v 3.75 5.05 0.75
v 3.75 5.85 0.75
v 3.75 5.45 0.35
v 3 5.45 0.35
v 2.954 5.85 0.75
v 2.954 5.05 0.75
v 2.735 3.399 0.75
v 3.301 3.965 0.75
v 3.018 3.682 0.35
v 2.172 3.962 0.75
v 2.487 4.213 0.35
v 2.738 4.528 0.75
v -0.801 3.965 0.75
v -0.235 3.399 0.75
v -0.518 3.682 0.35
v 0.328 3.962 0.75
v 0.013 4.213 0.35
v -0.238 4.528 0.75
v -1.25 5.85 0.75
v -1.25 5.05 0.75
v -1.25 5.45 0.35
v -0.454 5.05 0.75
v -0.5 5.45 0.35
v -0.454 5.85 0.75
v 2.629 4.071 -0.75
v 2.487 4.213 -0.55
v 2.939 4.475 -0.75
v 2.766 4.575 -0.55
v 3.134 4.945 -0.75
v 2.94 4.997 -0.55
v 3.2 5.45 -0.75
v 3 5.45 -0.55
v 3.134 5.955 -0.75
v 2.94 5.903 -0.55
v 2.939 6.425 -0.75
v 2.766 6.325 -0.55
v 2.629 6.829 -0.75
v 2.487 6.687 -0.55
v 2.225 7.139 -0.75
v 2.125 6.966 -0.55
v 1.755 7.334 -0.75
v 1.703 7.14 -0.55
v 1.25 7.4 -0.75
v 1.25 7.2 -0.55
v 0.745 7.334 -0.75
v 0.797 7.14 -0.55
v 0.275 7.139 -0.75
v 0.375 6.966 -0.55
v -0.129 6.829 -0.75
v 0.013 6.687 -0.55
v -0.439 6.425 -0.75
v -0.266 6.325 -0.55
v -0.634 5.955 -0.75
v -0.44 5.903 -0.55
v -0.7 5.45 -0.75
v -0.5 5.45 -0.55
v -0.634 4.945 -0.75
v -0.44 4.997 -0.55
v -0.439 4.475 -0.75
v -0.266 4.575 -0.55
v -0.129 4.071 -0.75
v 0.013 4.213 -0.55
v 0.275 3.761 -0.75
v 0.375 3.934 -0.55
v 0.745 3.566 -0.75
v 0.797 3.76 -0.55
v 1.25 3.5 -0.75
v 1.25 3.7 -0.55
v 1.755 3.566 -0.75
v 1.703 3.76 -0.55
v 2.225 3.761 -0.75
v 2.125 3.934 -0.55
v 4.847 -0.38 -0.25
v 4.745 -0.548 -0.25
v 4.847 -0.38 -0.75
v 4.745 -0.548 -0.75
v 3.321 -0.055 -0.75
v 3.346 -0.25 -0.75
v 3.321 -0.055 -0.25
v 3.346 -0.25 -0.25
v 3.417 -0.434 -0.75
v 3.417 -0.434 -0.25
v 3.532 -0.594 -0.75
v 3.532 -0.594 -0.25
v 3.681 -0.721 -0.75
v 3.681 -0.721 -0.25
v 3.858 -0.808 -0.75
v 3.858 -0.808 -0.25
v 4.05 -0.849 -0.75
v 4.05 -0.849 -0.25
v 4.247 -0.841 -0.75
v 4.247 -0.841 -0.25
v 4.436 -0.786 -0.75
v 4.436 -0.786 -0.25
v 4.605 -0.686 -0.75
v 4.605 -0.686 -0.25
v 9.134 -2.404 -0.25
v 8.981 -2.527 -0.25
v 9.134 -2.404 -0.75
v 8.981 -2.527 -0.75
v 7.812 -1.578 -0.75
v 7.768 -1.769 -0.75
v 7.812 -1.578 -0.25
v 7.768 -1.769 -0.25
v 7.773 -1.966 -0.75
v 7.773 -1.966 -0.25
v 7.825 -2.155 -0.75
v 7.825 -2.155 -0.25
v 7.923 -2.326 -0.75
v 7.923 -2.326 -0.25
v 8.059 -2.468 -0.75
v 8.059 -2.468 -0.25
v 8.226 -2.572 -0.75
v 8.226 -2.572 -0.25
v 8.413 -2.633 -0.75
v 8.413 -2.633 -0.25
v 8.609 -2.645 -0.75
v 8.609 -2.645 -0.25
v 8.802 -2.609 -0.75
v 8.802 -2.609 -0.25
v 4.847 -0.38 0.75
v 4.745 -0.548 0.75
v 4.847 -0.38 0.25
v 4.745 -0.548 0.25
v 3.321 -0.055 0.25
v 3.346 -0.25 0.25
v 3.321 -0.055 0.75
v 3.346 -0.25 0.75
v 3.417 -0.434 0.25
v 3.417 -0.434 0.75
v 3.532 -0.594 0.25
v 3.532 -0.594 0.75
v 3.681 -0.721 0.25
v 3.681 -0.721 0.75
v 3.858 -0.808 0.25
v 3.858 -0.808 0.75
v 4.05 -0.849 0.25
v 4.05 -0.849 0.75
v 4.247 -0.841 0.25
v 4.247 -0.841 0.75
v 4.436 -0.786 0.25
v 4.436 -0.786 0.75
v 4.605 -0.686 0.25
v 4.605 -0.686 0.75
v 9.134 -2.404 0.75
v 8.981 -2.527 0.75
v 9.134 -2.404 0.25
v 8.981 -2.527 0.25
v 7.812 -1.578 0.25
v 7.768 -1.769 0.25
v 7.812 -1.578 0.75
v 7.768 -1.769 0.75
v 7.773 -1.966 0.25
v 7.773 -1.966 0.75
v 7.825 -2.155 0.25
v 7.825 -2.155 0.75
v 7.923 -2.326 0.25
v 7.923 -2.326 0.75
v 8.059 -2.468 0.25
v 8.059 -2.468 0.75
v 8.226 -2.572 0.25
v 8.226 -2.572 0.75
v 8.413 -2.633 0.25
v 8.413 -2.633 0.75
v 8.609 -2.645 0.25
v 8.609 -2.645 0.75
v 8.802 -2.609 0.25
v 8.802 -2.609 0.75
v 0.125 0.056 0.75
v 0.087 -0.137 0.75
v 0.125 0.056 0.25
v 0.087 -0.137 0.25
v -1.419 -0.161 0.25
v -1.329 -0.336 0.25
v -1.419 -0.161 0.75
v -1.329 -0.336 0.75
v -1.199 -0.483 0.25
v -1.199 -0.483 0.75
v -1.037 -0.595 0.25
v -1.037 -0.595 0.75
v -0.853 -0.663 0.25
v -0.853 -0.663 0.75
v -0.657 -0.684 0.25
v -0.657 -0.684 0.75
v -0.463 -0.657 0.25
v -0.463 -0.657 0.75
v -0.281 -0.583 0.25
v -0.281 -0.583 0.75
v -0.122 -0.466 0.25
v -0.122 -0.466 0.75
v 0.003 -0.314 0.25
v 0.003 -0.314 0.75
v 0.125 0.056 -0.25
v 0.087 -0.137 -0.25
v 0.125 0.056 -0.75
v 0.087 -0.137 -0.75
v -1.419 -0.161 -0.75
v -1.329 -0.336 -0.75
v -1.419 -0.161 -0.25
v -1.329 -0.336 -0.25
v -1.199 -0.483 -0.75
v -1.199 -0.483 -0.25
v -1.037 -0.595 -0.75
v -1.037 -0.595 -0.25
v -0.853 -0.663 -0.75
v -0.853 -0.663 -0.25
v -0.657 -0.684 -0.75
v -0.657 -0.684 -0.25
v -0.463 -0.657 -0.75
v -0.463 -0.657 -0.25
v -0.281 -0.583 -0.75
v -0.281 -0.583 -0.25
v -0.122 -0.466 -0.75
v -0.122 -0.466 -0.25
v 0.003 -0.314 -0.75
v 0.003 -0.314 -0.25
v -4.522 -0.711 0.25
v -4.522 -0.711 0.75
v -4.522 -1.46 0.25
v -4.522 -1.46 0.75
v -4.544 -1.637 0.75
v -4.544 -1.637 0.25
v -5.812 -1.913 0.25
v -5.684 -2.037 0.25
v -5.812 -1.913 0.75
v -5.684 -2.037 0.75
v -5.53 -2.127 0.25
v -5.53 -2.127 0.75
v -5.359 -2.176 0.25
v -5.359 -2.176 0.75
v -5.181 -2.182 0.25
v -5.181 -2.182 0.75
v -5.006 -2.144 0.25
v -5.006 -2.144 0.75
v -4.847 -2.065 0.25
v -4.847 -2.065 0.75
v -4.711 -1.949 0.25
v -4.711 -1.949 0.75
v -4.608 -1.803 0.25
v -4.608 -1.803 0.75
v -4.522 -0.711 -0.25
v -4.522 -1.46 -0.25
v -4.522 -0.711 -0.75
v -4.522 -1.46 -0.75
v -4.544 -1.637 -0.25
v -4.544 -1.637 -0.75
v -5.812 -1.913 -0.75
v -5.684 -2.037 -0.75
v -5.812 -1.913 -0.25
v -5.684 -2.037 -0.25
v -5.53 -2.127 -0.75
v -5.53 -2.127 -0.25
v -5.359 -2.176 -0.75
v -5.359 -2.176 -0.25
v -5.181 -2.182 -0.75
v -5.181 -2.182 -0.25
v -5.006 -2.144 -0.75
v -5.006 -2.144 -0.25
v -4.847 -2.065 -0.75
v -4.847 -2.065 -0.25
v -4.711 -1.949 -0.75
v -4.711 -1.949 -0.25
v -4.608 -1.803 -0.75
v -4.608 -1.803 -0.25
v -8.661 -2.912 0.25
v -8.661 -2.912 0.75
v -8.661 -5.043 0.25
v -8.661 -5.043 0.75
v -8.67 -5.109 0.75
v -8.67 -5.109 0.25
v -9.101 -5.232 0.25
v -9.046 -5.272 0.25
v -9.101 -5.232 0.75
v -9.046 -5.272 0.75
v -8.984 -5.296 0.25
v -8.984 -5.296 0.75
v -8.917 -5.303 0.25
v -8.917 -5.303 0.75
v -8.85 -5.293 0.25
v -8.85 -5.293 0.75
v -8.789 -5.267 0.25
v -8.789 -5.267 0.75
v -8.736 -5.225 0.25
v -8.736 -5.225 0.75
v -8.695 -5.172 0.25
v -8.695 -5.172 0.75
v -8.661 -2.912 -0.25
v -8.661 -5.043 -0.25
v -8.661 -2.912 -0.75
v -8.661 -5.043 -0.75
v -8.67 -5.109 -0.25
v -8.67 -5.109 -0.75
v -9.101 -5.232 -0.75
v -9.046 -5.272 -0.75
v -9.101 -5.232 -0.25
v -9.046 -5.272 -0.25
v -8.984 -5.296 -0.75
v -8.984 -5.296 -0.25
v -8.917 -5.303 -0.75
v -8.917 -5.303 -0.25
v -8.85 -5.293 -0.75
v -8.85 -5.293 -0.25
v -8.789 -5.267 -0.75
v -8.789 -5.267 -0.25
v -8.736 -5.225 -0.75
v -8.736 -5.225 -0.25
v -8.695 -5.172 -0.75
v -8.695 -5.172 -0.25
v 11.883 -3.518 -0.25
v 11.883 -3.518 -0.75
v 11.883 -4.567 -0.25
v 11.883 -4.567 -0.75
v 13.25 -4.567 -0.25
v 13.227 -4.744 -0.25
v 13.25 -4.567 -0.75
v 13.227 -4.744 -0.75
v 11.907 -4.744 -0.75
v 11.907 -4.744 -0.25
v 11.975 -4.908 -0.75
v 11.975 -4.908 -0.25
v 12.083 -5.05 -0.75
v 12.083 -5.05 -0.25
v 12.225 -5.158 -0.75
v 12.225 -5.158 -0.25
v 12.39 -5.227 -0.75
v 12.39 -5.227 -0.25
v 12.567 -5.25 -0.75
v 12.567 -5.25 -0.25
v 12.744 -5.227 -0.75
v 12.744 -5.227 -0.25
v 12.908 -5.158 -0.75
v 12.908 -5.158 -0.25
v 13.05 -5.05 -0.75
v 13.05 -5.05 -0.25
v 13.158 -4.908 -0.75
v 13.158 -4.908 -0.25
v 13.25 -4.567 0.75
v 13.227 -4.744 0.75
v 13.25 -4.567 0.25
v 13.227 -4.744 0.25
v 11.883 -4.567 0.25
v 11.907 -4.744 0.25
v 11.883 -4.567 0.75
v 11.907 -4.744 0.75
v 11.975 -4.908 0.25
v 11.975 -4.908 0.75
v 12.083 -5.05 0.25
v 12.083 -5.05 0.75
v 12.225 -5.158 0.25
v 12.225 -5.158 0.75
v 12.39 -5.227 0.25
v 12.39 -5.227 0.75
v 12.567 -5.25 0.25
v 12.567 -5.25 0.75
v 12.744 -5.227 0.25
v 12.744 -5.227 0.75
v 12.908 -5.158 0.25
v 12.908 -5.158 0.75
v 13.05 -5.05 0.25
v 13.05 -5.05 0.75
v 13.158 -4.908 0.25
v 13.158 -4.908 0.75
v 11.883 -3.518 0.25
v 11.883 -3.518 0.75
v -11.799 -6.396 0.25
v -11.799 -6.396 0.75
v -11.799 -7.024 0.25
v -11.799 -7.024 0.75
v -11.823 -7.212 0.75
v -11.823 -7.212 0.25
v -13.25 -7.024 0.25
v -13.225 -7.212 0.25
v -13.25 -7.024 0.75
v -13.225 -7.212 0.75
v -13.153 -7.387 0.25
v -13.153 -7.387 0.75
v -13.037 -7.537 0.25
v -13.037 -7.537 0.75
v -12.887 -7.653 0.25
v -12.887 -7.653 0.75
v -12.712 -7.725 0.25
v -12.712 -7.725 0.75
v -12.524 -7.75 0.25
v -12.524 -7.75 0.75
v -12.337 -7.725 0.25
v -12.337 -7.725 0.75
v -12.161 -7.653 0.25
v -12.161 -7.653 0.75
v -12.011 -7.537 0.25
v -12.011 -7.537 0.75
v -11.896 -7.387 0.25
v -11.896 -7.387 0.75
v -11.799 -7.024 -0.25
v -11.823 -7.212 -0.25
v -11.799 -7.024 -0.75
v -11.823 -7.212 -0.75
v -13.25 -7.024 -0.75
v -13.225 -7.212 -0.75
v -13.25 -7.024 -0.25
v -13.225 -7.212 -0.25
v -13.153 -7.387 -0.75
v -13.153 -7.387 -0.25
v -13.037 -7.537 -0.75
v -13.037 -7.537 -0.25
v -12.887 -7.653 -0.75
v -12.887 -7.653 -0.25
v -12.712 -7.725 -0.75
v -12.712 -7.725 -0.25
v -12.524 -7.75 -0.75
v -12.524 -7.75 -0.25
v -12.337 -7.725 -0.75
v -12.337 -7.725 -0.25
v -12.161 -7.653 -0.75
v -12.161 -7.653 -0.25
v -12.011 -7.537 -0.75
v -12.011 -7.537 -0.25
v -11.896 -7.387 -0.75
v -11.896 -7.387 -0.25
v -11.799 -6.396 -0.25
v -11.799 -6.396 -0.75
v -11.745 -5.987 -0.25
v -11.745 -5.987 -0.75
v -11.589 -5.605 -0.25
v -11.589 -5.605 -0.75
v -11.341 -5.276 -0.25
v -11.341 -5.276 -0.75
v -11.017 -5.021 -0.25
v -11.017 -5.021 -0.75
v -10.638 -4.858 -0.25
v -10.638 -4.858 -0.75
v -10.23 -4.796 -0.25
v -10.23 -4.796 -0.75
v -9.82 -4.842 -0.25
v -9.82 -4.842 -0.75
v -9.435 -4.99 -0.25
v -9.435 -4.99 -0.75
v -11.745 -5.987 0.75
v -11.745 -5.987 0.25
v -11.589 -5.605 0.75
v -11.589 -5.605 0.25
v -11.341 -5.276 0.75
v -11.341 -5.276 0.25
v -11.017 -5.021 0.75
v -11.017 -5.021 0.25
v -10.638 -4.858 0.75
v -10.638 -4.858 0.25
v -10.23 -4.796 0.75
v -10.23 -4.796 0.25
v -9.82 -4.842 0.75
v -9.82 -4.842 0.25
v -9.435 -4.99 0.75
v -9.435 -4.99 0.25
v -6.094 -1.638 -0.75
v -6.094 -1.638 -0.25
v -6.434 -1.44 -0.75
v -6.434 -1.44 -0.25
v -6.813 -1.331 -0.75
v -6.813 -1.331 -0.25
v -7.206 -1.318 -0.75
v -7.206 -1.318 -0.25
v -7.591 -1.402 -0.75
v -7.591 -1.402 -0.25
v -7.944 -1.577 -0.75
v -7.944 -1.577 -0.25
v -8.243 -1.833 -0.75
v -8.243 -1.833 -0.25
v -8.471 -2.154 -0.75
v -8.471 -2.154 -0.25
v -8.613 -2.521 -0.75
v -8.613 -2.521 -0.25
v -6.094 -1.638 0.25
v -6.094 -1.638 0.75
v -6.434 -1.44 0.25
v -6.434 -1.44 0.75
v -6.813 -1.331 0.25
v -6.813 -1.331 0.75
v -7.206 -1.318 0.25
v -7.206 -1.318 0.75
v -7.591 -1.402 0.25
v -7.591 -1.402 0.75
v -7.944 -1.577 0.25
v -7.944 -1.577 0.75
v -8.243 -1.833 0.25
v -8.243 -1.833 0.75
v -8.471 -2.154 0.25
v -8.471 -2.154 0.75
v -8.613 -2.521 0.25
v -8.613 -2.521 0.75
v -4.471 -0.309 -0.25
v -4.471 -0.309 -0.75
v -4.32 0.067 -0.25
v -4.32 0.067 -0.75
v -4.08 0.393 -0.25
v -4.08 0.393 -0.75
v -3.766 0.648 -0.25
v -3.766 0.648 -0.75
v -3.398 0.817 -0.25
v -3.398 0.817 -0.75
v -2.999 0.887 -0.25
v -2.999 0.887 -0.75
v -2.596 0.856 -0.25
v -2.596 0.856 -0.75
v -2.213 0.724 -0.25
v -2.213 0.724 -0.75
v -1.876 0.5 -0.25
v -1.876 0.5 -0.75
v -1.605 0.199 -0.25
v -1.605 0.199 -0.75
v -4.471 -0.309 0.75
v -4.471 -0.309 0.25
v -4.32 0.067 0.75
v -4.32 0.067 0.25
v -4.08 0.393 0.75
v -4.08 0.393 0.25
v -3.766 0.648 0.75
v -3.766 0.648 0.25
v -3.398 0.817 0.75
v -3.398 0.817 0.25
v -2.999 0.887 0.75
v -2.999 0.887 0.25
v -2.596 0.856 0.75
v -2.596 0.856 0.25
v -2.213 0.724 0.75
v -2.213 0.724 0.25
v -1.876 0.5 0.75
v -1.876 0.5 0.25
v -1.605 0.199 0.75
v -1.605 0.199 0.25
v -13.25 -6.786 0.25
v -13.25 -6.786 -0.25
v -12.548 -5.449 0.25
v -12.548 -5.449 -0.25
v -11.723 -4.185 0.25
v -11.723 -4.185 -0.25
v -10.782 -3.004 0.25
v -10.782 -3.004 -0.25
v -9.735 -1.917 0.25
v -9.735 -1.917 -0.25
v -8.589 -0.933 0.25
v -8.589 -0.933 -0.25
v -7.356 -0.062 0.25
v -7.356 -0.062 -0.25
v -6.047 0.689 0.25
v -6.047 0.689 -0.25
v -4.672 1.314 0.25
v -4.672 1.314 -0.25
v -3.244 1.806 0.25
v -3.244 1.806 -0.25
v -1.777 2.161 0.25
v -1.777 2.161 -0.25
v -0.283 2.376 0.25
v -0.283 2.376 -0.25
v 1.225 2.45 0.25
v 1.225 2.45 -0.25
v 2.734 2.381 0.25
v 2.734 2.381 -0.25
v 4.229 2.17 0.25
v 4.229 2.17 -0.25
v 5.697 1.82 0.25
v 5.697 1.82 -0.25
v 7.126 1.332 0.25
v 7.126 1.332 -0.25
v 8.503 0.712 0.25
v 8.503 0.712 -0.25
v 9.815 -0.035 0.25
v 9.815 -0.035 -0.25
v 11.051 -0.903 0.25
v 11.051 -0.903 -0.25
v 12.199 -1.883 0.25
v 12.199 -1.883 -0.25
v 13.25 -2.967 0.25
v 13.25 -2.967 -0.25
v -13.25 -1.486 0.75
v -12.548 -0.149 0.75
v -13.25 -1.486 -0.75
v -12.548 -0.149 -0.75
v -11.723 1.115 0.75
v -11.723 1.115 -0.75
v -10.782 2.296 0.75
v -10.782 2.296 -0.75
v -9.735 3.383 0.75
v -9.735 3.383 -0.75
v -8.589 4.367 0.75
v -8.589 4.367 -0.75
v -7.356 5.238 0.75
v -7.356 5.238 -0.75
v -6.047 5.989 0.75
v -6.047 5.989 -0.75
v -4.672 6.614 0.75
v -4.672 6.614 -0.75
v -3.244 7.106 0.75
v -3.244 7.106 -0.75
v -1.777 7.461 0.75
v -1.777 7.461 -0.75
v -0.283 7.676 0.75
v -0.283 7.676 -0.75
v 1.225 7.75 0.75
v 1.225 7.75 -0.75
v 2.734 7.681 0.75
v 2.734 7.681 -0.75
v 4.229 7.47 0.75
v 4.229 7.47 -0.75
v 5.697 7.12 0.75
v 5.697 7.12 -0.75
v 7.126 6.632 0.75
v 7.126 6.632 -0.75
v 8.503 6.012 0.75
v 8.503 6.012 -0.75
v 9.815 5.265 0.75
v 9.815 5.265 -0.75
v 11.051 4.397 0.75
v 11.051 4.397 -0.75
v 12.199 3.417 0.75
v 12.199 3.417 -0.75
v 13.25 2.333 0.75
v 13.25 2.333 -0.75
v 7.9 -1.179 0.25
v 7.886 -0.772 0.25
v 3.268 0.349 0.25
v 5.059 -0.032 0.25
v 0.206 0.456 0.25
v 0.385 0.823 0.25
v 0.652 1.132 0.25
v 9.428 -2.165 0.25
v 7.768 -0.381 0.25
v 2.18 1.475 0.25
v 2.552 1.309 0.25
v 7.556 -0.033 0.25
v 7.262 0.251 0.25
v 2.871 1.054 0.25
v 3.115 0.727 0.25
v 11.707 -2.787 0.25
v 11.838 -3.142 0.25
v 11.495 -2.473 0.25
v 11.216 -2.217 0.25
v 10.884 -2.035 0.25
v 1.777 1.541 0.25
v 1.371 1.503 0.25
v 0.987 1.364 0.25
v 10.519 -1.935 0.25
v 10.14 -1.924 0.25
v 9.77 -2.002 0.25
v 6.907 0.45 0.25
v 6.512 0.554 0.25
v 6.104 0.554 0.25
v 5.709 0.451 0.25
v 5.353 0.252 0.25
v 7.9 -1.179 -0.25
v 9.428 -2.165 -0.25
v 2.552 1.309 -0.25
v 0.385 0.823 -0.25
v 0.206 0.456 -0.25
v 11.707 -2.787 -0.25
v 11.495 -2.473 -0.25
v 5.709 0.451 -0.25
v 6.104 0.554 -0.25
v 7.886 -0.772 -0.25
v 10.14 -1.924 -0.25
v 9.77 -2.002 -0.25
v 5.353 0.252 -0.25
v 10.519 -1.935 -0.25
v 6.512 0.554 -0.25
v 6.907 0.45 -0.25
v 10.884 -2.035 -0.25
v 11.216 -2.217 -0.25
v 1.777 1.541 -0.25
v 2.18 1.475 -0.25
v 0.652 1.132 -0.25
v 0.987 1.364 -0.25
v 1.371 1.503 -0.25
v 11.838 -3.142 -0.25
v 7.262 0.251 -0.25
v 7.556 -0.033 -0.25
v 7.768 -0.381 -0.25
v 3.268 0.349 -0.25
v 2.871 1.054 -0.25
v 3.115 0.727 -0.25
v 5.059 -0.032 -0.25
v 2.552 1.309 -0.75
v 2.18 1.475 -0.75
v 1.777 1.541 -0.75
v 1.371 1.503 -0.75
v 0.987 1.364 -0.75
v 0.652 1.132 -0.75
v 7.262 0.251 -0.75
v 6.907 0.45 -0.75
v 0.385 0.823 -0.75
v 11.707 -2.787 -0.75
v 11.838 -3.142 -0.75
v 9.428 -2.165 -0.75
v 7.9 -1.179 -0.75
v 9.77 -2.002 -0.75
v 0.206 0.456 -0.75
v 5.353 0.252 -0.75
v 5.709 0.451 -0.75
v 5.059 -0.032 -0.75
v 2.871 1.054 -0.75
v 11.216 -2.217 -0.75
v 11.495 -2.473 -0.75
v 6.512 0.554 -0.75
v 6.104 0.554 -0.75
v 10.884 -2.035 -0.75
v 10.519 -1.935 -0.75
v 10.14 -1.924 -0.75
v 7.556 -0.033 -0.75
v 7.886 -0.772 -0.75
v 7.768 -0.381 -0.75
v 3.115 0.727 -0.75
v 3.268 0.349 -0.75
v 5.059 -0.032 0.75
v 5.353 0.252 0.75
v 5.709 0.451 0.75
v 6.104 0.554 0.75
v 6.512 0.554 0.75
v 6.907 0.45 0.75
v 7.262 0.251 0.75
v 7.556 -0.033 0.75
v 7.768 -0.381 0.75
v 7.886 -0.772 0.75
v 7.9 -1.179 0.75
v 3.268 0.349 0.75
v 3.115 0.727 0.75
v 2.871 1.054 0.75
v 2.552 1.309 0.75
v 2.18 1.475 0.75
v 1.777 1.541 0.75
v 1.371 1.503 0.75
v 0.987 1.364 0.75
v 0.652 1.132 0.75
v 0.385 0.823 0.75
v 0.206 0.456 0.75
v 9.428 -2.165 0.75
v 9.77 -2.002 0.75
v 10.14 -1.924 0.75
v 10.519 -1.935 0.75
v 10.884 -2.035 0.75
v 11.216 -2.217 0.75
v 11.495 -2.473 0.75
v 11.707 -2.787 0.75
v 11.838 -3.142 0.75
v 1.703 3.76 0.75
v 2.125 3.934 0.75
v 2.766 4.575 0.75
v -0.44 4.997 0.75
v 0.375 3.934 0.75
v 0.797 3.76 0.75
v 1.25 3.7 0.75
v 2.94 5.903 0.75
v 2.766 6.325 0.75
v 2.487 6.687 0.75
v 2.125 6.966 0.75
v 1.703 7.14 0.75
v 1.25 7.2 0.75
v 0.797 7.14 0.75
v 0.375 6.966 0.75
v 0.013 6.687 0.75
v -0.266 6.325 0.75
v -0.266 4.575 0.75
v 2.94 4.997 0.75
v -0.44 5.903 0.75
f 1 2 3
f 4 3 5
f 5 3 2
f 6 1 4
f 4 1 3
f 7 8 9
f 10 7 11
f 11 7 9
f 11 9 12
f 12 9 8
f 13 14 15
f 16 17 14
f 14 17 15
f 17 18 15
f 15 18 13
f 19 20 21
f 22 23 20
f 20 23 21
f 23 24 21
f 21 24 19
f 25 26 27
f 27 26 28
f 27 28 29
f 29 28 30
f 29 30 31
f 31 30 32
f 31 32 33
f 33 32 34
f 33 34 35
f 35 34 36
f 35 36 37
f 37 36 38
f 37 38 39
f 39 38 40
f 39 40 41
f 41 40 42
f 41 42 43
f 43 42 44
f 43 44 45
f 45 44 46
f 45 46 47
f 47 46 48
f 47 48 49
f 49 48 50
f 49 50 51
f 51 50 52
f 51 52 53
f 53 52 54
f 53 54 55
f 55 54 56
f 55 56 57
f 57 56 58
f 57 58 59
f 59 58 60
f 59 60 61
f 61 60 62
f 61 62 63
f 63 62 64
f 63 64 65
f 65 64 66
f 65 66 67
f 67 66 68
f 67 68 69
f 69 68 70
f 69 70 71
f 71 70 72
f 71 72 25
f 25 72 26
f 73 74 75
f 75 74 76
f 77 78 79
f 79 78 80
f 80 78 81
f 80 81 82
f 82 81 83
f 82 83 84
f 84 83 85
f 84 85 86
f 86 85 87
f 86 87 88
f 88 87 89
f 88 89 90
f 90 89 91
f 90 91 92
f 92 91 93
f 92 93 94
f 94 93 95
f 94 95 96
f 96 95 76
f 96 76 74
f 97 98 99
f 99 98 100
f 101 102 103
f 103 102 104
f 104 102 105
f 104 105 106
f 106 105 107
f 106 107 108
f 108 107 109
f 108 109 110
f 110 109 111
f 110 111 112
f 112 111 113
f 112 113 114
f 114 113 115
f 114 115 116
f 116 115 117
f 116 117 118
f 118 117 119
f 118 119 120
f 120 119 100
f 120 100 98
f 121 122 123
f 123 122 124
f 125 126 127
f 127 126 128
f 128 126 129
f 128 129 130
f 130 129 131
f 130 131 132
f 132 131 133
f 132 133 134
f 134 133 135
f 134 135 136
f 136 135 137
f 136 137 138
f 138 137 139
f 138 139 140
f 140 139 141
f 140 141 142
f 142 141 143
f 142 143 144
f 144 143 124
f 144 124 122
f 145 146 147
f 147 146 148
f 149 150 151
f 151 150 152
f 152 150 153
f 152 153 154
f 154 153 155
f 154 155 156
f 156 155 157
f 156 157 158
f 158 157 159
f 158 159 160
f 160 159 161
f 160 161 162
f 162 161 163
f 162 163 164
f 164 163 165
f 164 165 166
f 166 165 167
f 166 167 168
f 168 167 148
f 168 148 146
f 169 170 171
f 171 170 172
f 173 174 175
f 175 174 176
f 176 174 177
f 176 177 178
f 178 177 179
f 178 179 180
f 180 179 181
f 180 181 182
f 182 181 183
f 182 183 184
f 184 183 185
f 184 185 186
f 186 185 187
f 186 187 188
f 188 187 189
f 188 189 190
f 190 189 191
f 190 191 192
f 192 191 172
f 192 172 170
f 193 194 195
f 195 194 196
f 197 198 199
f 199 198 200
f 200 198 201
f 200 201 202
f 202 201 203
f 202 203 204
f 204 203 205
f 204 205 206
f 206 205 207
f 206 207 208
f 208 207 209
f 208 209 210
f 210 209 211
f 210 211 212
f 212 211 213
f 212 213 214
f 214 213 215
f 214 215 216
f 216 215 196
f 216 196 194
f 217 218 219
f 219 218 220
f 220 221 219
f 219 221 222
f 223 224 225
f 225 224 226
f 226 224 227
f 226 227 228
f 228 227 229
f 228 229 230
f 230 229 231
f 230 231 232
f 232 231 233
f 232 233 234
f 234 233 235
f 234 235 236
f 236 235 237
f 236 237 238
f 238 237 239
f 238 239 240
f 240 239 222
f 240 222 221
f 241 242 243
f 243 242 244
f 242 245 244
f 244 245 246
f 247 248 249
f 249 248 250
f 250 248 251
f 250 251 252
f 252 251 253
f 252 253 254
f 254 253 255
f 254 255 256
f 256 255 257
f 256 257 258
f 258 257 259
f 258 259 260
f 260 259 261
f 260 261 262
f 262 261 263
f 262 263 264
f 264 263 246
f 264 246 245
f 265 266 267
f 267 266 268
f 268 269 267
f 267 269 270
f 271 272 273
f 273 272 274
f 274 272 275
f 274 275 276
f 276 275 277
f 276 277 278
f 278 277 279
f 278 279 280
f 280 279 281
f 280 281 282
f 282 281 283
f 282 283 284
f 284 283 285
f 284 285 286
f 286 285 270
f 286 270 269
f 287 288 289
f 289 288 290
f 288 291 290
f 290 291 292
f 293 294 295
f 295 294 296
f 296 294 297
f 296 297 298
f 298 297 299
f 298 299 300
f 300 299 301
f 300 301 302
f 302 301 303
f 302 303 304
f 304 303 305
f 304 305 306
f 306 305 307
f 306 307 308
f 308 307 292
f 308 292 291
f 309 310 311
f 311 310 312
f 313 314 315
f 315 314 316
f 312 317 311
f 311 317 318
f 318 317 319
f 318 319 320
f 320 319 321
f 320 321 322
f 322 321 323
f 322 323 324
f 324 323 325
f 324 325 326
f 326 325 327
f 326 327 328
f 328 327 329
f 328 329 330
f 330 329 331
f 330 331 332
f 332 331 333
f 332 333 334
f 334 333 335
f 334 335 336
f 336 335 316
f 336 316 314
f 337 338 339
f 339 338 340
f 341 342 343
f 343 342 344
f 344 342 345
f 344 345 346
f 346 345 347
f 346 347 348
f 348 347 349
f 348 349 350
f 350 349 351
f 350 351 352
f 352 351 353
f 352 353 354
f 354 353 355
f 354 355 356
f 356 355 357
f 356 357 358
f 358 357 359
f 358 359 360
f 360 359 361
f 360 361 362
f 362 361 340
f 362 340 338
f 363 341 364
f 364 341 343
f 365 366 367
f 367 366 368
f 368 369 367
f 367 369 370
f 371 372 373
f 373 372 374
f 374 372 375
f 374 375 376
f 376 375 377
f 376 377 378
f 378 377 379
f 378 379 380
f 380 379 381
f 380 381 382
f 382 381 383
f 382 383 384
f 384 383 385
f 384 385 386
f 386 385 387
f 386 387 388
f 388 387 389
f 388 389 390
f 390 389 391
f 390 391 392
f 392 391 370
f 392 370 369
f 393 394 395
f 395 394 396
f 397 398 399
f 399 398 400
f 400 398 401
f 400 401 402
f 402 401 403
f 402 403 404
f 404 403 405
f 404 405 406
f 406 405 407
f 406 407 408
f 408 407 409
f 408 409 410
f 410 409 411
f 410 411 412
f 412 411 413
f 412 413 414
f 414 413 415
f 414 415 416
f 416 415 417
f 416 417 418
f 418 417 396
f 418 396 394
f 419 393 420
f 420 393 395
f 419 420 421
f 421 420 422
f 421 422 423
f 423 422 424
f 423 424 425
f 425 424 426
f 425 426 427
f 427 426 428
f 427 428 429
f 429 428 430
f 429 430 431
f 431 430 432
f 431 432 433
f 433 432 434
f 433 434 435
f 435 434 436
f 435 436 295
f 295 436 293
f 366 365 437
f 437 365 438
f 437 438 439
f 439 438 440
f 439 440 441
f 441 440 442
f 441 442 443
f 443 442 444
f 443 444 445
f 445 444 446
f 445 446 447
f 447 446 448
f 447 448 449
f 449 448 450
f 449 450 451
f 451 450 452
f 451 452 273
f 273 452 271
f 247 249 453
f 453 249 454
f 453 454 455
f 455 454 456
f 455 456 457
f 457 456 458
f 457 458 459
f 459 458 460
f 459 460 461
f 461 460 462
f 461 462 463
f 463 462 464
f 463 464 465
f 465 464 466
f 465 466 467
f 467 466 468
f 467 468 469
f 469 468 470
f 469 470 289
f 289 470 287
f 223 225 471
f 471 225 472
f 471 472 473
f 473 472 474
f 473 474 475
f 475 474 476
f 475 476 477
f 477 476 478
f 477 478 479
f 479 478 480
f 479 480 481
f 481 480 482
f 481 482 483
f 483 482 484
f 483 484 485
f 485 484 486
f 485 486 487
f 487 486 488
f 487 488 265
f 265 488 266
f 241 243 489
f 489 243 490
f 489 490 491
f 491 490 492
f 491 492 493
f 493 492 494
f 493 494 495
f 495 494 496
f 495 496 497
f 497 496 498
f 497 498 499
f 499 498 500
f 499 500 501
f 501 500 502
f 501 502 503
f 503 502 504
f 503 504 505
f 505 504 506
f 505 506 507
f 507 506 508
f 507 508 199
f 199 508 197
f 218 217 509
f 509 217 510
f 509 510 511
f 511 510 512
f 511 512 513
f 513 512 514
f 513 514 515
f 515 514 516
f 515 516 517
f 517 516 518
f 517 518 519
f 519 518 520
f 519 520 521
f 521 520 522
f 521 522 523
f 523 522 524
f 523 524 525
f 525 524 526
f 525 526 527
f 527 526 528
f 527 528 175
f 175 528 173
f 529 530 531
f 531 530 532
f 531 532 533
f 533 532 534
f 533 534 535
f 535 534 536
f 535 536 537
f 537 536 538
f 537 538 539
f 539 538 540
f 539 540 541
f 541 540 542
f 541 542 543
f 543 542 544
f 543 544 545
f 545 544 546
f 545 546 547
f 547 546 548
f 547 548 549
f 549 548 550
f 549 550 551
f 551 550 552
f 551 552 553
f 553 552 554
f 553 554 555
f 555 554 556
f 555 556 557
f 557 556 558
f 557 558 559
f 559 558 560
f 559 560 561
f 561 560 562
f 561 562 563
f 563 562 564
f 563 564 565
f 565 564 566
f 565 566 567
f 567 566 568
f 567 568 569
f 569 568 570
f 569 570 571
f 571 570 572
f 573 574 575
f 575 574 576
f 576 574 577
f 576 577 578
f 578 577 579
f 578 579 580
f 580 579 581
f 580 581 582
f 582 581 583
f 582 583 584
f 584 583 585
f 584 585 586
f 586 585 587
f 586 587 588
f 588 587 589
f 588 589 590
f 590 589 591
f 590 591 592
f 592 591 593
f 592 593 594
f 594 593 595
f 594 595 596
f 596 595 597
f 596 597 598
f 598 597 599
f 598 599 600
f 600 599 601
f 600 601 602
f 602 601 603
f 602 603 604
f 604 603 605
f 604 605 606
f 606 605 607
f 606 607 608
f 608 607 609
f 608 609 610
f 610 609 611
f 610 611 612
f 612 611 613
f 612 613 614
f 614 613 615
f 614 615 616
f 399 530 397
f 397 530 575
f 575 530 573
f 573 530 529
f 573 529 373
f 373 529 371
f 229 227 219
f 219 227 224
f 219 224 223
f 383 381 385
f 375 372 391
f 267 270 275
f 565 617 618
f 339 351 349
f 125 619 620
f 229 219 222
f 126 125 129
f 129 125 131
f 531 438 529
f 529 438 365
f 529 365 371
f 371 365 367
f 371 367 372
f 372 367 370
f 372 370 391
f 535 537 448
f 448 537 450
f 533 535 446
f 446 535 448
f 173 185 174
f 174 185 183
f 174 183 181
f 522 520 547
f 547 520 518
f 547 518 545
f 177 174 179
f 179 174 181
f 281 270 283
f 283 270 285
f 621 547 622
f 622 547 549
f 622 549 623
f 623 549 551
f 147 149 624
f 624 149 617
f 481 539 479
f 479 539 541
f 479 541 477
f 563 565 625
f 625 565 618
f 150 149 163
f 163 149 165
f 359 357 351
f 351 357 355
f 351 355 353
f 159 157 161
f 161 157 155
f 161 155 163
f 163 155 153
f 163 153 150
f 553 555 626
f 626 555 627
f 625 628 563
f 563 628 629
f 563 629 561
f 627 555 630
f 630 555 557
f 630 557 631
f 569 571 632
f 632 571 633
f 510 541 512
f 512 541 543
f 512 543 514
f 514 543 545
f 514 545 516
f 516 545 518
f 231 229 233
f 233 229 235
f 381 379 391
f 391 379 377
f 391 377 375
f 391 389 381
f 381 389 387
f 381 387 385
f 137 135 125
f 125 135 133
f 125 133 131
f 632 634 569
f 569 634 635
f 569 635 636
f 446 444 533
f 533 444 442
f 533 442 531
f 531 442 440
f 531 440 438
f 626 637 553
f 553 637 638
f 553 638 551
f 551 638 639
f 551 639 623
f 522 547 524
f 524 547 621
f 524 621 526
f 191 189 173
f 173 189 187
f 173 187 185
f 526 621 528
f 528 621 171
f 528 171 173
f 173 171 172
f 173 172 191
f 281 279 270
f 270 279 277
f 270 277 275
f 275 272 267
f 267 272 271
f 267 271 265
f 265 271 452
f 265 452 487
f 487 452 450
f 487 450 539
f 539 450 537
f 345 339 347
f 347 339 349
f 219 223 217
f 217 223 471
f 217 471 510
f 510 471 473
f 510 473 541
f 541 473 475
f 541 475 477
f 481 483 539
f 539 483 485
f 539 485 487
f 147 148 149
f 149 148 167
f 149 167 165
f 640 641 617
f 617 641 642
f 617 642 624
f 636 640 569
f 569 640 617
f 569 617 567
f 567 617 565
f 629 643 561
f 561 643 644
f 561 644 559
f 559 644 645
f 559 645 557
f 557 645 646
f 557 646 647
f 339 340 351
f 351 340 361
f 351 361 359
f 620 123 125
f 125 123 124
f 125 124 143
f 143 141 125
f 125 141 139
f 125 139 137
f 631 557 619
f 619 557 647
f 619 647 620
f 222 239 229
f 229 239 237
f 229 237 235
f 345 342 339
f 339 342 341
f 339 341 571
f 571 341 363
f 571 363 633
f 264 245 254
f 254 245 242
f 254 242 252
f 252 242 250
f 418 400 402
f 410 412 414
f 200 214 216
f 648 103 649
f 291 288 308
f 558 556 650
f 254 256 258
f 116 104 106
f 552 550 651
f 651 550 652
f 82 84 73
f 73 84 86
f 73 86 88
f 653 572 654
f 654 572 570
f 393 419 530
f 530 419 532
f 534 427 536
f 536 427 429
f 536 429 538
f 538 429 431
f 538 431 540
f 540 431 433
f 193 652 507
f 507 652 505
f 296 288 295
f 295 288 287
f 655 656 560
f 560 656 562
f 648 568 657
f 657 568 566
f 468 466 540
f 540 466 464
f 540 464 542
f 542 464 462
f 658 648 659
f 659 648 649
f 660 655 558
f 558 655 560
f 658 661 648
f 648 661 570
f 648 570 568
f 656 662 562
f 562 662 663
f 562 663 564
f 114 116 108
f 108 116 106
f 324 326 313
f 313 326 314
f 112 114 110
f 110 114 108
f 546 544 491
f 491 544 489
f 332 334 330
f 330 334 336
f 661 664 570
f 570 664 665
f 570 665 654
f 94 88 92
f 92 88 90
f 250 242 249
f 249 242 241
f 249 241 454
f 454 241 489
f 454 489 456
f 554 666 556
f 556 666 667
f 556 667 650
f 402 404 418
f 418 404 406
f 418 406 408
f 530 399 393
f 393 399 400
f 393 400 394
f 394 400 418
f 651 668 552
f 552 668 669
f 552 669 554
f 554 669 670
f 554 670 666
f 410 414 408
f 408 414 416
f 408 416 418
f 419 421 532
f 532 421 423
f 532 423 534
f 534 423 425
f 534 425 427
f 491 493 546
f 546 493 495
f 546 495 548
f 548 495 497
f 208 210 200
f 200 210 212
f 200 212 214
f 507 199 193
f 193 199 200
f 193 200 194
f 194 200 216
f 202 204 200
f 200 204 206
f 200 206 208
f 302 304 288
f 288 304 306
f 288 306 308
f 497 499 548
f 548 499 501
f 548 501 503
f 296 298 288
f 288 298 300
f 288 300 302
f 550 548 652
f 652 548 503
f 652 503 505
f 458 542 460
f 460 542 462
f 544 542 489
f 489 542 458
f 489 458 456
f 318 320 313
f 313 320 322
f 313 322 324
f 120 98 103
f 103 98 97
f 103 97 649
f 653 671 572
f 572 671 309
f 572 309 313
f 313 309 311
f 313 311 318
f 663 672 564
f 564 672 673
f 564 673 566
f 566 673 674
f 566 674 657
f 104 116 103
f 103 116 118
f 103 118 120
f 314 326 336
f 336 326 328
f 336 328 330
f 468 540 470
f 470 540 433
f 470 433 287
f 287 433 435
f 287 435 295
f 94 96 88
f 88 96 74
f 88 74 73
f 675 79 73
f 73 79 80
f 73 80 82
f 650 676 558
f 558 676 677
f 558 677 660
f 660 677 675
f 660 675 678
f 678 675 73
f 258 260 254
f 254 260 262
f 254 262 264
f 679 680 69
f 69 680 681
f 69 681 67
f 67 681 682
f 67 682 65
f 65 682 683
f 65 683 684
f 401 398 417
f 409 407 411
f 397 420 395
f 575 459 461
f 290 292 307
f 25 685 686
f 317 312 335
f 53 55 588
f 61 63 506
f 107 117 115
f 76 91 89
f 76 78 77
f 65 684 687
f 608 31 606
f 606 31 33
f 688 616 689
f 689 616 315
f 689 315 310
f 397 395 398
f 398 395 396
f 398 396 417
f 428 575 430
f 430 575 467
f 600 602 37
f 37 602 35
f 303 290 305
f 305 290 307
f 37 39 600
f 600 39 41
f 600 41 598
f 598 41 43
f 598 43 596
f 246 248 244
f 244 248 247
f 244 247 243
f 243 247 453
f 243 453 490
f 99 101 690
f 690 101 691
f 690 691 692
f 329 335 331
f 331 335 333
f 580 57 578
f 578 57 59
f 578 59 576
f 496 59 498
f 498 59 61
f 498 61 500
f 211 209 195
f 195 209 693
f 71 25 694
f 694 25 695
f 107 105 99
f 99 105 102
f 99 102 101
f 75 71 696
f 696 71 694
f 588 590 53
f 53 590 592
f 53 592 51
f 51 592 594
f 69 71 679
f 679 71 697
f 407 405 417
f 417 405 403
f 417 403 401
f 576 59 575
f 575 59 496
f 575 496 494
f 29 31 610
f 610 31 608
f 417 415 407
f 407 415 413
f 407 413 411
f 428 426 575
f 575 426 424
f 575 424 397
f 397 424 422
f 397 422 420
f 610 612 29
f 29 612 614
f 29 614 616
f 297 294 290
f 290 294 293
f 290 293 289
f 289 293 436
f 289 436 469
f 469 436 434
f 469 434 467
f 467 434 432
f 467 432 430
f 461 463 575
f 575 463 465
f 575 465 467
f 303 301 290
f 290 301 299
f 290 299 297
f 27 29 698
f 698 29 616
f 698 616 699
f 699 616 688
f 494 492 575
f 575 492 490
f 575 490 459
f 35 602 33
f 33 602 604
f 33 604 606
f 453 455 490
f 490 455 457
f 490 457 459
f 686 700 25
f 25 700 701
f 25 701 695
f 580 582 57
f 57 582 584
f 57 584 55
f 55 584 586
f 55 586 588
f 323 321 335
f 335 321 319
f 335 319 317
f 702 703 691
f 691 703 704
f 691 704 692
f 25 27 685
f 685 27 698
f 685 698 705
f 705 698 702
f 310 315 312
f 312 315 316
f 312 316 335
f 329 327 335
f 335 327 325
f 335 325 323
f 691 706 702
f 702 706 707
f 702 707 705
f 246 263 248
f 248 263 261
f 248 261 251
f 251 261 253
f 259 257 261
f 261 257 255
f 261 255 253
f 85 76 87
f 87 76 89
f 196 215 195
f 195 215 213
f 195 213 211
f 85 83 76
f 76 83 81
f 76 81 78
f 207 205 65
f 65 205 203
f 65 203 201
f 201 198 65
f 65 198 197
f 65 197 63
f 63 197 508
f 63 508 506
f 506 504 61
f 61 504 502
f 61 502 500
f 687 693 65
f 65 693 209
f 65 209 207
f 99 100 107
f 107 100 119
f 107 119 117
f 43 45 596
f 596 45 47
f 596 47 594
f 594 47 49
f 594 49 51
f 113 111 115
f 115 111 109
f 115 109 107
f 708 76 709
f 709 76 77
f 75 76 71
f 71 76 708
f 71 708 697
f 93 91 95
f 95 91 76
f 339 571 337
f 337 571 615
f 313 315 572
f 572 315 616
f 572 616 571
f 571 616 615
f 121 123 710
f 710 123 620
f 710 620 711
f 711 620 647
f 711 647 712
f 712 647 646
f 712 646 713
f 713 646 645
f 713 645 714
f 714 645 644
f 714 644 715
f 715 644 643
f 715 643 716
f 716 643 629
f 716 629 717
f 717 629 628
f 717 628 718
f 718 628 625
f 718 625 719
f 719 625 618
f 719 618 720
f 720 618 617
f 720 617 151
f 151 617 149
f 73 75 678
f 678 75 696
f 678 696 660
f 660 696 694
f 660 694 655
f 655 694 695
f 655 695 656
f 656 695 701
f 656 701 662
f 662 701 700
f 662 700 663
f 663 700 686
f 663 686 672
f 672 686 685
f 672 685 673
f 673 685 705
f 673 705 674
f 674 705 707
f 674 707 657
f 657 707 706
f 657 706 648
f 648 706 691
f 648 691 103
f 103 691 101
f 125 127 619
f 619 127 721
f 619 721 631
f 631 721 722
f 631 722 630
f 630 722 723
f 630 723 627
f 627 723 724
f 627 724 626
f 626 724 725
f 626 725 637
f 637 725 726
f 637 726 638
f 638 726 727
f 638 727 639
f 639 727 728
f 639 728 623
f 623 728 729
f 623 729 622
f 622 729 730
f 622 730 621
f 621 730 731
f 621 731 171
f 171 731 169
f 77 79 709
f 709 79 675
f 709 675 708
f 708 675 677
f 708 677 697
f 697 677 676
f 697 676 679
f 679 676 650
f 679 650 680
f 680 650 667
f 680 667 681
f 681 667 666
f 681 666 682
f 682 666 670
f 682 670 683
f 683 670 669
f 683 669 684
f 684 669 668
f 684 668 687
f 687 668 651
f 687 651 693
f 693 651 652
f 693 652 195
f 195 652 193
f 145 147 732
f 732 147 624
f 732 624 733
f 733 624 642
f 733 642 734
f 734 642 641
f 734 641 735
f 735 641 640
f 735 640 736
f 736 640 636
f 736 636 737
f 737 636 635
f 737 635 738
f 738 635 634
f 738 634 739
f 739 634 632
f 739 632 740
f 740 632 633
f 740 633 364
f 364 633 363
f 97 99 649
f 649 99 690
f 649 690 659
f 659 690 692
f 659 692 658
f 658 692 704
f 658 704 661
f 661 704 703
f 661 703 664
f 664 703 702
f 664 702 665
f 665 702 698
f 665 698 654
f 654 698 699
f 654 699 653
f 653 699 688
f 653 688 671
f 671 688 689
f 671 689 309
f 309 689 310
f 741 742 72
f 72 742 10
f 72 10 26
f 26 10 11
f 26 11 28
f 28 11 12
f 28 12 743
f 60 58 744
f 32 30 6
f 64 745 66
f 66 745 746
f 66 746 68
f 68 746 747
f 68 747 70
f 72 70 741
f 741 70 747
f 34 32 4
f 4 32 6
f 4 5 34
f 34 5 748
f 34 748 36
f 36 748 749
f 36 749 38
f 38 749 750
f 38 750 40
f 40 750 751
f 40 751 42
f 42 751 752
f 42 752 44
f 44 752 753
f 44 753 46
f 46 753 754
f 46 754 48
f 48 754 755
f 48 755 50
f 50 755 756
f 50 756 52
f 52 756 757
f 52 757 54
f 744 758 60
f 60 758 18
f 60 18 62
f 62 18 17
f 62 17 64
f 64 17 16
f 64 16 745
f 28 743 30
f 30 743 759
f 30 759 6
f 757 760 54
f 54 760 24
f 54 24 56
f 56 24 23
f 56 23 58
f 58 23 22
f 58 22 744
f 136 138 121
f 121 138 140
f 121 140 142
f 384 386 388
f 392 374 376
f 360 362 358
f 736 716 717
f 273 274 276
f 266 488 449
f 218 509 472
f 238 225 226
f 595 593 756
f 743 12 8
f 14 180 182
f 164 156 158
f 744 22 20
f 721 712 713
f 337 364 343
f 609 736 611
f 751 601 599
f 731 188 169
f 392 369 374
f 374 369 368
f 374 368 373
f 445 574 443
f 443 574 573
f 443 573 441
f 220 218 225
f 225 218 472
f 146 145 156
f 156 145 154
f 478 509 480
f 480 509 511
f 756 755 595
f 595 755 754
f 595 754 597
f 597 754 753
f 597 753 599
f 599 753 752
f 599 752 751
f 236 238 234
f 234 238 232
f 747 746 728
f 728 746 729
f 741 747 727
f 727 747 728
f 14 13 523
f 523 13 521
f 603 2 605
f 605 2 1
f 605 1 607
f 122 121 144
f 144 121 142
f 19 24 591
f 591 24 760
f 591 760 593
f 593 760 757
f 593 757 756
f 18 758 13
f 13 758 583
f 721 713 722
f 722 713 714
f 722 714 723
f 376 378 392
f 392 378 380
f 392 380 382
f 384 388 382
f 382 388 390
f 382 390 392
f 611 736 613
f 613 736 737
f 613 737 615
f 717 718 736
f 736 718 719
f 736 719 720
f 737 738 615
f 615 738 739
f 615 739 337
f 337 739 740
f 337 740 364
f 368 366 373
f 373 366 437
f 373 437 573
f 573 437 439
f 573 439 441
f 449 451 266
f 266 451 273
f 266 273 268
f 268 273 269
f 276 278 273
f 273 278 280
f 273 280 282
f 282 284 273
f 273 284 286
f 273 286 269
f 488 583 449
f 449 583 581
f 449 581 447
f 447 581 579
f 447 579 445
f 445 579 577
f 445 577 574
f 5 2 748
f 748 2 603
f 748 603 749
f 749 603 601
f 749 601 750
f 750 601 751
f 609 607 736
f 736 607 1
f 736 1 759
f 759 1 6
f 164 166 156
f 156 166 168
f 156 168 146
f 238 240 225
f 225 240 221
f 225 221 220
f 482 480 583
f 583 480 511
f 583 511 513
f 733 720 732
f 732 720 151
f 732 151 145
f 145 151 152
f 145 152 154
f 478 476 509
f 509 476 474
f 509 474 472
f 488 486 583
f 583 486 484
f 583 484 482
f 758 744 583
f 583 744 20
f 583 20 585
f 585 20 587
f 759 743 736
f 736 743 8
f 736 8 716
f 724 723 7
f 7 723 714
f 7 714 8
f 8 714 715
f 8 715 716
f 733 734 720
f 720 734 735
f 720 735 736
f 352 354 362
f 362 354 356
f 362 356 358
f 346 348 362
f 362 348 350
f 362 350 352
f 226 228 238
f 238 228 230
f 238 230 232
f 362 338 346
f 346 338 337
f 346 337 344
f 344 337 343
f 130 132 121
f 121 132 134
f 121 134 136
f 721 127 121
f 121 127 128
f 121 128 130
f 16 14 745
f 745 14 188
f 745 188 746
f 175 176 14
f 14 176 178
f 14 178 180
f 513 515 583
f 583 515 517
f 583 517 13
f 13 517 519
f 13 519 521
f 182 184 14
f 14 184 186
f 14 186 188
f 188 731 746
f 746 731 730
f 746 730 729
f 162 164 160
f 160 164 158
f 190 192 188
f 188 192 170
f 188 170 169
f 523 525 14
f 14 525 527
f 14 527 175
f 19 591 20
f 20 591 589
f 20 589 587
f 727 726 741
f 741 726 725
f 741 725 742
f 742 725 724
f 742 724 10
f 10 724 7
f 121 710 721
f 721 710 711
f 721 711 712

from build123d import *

# Parameters (mm, degrees)
SKETCH1_W               = 26.5
SKETCH1_H               = 15.5
BOSS_EXTRUDE1_DEPTH     = 0.75
CUT_EXTRUDE1_START      = -1.5
CUT_EXTRUDE1_DEPTH      = 1.5
SKETCH3_R               = 16
CUT_EXTRUDE2_DEPTH      = 0.25
SKETCH5_R               = 13
CUT_EXTRUDE3_DEPTH      = 2.5
CUT_EXTRUDE9_DEPTH      = 2.5
SKETCH8_R               = 1.75
CUT_EXTRUDE6_DEPTH      = 2.5
SKETCH4_R               = 1.6
CUT_EXTRUDE7_DEPTH      = 1.75
CUT_EXTRUDE7_DEPTH_BACK = 1.75
CUT_EXTRUDE8_DEPTH      = 2.5
CUT_EXTRUDE10_DEPTH     = 2.5
CUT_EXTRUDE11_DEPTH     = 2.5
CHAMFER1_SIZE           = 0.2
CUT_EXTRUDE12_DEPTH     = 2.5
CIRPATTERN1_COUNT       = 2
CIRPATTERN1_ANGLE       = 45
MIRROR1_COPY_1_DEPTH    = 2.5


with BuildPart() as part:
    # Sketch1 → Boss-Extrude1 (new body, symmetric)
    with BuildSketch(Plane.XY):
        Rectangle(SKETCH1_W, SKETCH1_H)
    extrude(amount=BOSS_EXTRUDE1_DEPTH, both=True)

    # Sketch2 → Cut-Extrude1 (cut)
    with BuildSketch(Plane.XY.offset(0.75).offset(CUT_EXTRUDE1_START)):
        with BuildLine():
            Line((-13.25, 9.75), (-13.25, -1.486125371))
            ThreePointArc((-13.25, -1.486125371), (-1.032310159, 7.586384068), (13.25, 2.333005244))
            Line((13.25, 2.333005244), (13.25, 9.75))
            Line((13.25, 9.75), (-13.25, 9.75))
        make_face()
    extrude(amount=CUT_EXTRUDE1_DEPTH, mode=Mode.SUBTRACT)

    # Sketch3 → Cut-Extrude2 (cut, symmetric)
    with BuildSketch(Plane.XY):
        with Locations((1.25, -13.55)):
            Circle(SKETCH3_R)
    extrude(amount=CUT_EXTRUDE2_DEPTH, both=True, mode=Mode.SUBTRACT)

    # Sketch5 → Cut-Extrude3 (cut, through all)
    with BuildSketch(Plane.XY.offset(0.75)):
        with Locations((1.25, -13.55)):
            Circle(SKETCH5_R)
    extrude(amount=-CUT_EXTRUDE3_DEPTH, mode=Mode.SUBTRACT)

    # Sketch11 → Cut-Extrude9 (cut, through all)
    with BuildSketch(Plane.XY.offset(0.75)):
        with BuildLine():
            Line((11.255498488, -5.25), (13.25, -5.25))
            Line((13.25, -5.25), (13.25, -7.75))
            Line((13.25, -7.75), (12.884431658, -7.75))
            ThreePointArc((12.884431658, -7.75), (12.141930232, -6.453109426), (11.255498488, -5.25))
        make_face()
    extrude(amount=-CUT_EXTRUDE9_DEPTH, mode=Mode.SUBTRACT)

    # Sketch8 → Cut-Extrude6 (cut, through all)
    with BuildSketch(Plane.XY.offset(0.75)):
        with Locations((1.25, 5.45)):
            Circle(SKETCH8_R)
    extrude(amount=-CUT_EXTRUDE6_DEPTH, mode=Mode.SUBTRACT)

    # Sketch4 → Cut-Extrude7 (cut, two sides)
    with BuildSketch(Plane.XY) as cut_extrude7_sk:
        with Locations((1.721143205, -0.058223835)):
            Circle(SKETCH4_R)
        with Locations((6.307189011, -1.033017963)):
            Circle(SKETCH4_R)
        with Locations((10.283263186, -3.517544856)):
            Circle(SKETCH4_R)
        with Locations((-2.921729424, -0.71073703)):
            Circle(SKETCH4_R)
        with Locations((-7.061429917, -2.911854826)):
            Circle(SKETCH4_R)
        with Locations((-10.198649298, -6.396089933)):
            Circle(SKETCH4_R)
    extrude(amount=CUT_EXTRUDE7_DEPTH, mode=Mode.SUBTRACT)
    extrude(cut_extrude7_sk.sketch, amount=-CUT_EXTRUDE7_DEPTH_BACK, mode=Mode.SUBTRACT)

    # Sketch9 → Cut-Extrude8 (cut, through all)
    with BuildSketch(Plane.XY.offset(0.75)):
        with BuildLine():
            Line((-11.798649298, -6.396089933), (-11.798649298, -7.024324649))
            ThreePointArc((-11.798649298, -7.024324649), (-12.524324649, -7.75), (-13.25, -7.024324649))
            Line((-13.25, -7.024324649), (-13.25, -8.25))
            Line((-13.25, -8.25), (-11.05124975, -8.25))
            Line((-11.05124975, -8.25), (-11.05124975, -7.75))
            ThreePointArc((-11.05124975, -7.75), (-11.599392087, -7.169342569), (-11.798649298, -6.396089933))
        make_face()
    extrude(amount=-CUT_EXTRUDE8_DEPTH, mode=Mode.SUBTRACT)

    # Sketch12 → Cut-Extrude10 (cut, through all)
    with BuildSketch(Plane.XY.offset(0.75)):
        with BuildLine():
            Line((11.883263186, -3.517544856), (11.883263186, -4.566631593))
            ThreePointArc((11.883263186, -4.566631593), (12.566631593, -5.25), (13.25, -4.566631593))
            Line((13.25, -4.566631593), (13.25, -5.75))
            Line((13.25, -5.75), (11.255498488, -5.75))
            Line((11.255498488, -5.75), (11.255498488, -5.25))
            ThreePointArc((11.255498488, -5.25), (11.12789237, -5.098536084), (10.997993608, -4.949033739))
            ThreePointArc((10.997993608, -4.949033739), (11.644066014, -4.359100358), (11.883263186, -3.517544856))
        make_face()
    extrude(amount=-CUT_EXTRUDE10_DEPTH, mode=Mode.SUBTRACT)

    # Sketch13 → Cut-Extrude11 (cut, through all)
    with BuildSketch(Plane.XY.offset(0.75)):
        with BuildLine():
            Line((-8.661429917, -2.911854826), (-8.661429917, -5.042786286))
            ThreePointArc((-8.661429917, -5.042786286), (-8.818746964, -5.281977988), (-9.100687262, -5.232268912))
            ThreePointArc((-9.100687262, -5.232268912), (-8.836495341, -5.556723149), (-8.665455555, -5.938578244))
            ThreePointArc((-8.665455555, -5.938578244), (1.881828141, -1.065978484), (11.883263186, -6.978568343))
            Line((11.883263186, -6.978568343), (11.883263186, -3.517544856))
            ThreePointArc((11.883263186, -3.517544856), (10.883946092, -2.034581591), (9.134288128, -2.404056501))
            ThreePointArc((9.134288128, -2.404056501), (8.138950435, -2.52537475), (7.811663229, -1.577588737))
            ThreePointArc((7.811663229, -1.577588737), (6.906559561, 0.450476204), (4.846670181, -0.379653786))
            ThreePointArc((4.846670181, -0.379653786), (3.952851981, -0.83408119), (3.3211407, -0.055392485))
            ThreePointArc((3.3211407, -0.055392485), (1.7769824, 1.540801488), (0.125240729, 0.056210801))
            ThreePointArc((0.125240729, 0.056210801), (-0.559250312, -0.676515106), (-1.419191964, -0.160845059))
            ThreePointArc((-1.419191964, -0.160845059), (-3.200960568, 0.864708929), (-4.521729424, -0.71073703))
            Line((-4.521729424, -0.71073703), (-4.521729424, -1.460419063))
            ThreePointArc((-4.521729424, -1.460419063), (-5.006380866, -2.143921837), (-5.811741986, -1.912715158))
            ThreePointArc((-5.811741986, -1.912715158), (-7.590816029, -1.401970611), (-8.661429917, -2.911854826))
        make_face()
    extrude(amount=-CUT_EXTRUDE11_DEPTH, mode=Mode.SUBTRACT)

    # Chamfer1
    chamfer1_edges = [part.edges().sort_by_distance(p)[0] for p in [
        (-0.5, 5.45, -0.75),
    ]]
    chamfer(chamfer1_edges, length=CHAMFER1_SIZE)

    # Sketch14 → Cut-Extrude12 (cut)
    with BuildSketch(Plane.ZY.offset(-1.25)):
        Polygon((0.75, 5.85), (0.35, 5.45), (0.75, 5.05), align=None)
    cut_extrude12 = extrude(amount=CUT_EXTRUDE12_DEPTH, mode=Mode.SUBTRACT)

    # CirPattern1: Cut-Extrude12 ×2 about axis
    cirpattern1_axis = Axis((1.25, 5.45, 0), (0, 0, 1))
    for i in range(1, CIRPATTERN1_COUNT):
        add(cut_extrude12.rotate(cirpattern1_axis, i * CIRPATTERN1_ANGLE / (CIRPATTERN1_COUNT - 1)), mode=Mode.SUBTRACT)

    # Mirror1: Cut-Extrude12 across plane
    add(cut_extrude12.mirror(Plane.ZY.offset(-1.25)), mode=Mode.SUBTRACT)

    # Mirror1 copy 1 sketch → Mirror1 copy 1 (cut)
    with BuildSketch(Plane(origin=(-2.603731957, 1.596268043, 0), x_dir=(0, 0, 1), z_dir=(0.707106781, -0.707106781, 0))):
        Polygon((0.75, -5.85), (0.35, -5.45), (0.75, -5.05), align=None)
    extrude(amount=MIRROR1_COPY_1_DEPTH, mode=Mode.SUBTRACT)


solid = part.part
